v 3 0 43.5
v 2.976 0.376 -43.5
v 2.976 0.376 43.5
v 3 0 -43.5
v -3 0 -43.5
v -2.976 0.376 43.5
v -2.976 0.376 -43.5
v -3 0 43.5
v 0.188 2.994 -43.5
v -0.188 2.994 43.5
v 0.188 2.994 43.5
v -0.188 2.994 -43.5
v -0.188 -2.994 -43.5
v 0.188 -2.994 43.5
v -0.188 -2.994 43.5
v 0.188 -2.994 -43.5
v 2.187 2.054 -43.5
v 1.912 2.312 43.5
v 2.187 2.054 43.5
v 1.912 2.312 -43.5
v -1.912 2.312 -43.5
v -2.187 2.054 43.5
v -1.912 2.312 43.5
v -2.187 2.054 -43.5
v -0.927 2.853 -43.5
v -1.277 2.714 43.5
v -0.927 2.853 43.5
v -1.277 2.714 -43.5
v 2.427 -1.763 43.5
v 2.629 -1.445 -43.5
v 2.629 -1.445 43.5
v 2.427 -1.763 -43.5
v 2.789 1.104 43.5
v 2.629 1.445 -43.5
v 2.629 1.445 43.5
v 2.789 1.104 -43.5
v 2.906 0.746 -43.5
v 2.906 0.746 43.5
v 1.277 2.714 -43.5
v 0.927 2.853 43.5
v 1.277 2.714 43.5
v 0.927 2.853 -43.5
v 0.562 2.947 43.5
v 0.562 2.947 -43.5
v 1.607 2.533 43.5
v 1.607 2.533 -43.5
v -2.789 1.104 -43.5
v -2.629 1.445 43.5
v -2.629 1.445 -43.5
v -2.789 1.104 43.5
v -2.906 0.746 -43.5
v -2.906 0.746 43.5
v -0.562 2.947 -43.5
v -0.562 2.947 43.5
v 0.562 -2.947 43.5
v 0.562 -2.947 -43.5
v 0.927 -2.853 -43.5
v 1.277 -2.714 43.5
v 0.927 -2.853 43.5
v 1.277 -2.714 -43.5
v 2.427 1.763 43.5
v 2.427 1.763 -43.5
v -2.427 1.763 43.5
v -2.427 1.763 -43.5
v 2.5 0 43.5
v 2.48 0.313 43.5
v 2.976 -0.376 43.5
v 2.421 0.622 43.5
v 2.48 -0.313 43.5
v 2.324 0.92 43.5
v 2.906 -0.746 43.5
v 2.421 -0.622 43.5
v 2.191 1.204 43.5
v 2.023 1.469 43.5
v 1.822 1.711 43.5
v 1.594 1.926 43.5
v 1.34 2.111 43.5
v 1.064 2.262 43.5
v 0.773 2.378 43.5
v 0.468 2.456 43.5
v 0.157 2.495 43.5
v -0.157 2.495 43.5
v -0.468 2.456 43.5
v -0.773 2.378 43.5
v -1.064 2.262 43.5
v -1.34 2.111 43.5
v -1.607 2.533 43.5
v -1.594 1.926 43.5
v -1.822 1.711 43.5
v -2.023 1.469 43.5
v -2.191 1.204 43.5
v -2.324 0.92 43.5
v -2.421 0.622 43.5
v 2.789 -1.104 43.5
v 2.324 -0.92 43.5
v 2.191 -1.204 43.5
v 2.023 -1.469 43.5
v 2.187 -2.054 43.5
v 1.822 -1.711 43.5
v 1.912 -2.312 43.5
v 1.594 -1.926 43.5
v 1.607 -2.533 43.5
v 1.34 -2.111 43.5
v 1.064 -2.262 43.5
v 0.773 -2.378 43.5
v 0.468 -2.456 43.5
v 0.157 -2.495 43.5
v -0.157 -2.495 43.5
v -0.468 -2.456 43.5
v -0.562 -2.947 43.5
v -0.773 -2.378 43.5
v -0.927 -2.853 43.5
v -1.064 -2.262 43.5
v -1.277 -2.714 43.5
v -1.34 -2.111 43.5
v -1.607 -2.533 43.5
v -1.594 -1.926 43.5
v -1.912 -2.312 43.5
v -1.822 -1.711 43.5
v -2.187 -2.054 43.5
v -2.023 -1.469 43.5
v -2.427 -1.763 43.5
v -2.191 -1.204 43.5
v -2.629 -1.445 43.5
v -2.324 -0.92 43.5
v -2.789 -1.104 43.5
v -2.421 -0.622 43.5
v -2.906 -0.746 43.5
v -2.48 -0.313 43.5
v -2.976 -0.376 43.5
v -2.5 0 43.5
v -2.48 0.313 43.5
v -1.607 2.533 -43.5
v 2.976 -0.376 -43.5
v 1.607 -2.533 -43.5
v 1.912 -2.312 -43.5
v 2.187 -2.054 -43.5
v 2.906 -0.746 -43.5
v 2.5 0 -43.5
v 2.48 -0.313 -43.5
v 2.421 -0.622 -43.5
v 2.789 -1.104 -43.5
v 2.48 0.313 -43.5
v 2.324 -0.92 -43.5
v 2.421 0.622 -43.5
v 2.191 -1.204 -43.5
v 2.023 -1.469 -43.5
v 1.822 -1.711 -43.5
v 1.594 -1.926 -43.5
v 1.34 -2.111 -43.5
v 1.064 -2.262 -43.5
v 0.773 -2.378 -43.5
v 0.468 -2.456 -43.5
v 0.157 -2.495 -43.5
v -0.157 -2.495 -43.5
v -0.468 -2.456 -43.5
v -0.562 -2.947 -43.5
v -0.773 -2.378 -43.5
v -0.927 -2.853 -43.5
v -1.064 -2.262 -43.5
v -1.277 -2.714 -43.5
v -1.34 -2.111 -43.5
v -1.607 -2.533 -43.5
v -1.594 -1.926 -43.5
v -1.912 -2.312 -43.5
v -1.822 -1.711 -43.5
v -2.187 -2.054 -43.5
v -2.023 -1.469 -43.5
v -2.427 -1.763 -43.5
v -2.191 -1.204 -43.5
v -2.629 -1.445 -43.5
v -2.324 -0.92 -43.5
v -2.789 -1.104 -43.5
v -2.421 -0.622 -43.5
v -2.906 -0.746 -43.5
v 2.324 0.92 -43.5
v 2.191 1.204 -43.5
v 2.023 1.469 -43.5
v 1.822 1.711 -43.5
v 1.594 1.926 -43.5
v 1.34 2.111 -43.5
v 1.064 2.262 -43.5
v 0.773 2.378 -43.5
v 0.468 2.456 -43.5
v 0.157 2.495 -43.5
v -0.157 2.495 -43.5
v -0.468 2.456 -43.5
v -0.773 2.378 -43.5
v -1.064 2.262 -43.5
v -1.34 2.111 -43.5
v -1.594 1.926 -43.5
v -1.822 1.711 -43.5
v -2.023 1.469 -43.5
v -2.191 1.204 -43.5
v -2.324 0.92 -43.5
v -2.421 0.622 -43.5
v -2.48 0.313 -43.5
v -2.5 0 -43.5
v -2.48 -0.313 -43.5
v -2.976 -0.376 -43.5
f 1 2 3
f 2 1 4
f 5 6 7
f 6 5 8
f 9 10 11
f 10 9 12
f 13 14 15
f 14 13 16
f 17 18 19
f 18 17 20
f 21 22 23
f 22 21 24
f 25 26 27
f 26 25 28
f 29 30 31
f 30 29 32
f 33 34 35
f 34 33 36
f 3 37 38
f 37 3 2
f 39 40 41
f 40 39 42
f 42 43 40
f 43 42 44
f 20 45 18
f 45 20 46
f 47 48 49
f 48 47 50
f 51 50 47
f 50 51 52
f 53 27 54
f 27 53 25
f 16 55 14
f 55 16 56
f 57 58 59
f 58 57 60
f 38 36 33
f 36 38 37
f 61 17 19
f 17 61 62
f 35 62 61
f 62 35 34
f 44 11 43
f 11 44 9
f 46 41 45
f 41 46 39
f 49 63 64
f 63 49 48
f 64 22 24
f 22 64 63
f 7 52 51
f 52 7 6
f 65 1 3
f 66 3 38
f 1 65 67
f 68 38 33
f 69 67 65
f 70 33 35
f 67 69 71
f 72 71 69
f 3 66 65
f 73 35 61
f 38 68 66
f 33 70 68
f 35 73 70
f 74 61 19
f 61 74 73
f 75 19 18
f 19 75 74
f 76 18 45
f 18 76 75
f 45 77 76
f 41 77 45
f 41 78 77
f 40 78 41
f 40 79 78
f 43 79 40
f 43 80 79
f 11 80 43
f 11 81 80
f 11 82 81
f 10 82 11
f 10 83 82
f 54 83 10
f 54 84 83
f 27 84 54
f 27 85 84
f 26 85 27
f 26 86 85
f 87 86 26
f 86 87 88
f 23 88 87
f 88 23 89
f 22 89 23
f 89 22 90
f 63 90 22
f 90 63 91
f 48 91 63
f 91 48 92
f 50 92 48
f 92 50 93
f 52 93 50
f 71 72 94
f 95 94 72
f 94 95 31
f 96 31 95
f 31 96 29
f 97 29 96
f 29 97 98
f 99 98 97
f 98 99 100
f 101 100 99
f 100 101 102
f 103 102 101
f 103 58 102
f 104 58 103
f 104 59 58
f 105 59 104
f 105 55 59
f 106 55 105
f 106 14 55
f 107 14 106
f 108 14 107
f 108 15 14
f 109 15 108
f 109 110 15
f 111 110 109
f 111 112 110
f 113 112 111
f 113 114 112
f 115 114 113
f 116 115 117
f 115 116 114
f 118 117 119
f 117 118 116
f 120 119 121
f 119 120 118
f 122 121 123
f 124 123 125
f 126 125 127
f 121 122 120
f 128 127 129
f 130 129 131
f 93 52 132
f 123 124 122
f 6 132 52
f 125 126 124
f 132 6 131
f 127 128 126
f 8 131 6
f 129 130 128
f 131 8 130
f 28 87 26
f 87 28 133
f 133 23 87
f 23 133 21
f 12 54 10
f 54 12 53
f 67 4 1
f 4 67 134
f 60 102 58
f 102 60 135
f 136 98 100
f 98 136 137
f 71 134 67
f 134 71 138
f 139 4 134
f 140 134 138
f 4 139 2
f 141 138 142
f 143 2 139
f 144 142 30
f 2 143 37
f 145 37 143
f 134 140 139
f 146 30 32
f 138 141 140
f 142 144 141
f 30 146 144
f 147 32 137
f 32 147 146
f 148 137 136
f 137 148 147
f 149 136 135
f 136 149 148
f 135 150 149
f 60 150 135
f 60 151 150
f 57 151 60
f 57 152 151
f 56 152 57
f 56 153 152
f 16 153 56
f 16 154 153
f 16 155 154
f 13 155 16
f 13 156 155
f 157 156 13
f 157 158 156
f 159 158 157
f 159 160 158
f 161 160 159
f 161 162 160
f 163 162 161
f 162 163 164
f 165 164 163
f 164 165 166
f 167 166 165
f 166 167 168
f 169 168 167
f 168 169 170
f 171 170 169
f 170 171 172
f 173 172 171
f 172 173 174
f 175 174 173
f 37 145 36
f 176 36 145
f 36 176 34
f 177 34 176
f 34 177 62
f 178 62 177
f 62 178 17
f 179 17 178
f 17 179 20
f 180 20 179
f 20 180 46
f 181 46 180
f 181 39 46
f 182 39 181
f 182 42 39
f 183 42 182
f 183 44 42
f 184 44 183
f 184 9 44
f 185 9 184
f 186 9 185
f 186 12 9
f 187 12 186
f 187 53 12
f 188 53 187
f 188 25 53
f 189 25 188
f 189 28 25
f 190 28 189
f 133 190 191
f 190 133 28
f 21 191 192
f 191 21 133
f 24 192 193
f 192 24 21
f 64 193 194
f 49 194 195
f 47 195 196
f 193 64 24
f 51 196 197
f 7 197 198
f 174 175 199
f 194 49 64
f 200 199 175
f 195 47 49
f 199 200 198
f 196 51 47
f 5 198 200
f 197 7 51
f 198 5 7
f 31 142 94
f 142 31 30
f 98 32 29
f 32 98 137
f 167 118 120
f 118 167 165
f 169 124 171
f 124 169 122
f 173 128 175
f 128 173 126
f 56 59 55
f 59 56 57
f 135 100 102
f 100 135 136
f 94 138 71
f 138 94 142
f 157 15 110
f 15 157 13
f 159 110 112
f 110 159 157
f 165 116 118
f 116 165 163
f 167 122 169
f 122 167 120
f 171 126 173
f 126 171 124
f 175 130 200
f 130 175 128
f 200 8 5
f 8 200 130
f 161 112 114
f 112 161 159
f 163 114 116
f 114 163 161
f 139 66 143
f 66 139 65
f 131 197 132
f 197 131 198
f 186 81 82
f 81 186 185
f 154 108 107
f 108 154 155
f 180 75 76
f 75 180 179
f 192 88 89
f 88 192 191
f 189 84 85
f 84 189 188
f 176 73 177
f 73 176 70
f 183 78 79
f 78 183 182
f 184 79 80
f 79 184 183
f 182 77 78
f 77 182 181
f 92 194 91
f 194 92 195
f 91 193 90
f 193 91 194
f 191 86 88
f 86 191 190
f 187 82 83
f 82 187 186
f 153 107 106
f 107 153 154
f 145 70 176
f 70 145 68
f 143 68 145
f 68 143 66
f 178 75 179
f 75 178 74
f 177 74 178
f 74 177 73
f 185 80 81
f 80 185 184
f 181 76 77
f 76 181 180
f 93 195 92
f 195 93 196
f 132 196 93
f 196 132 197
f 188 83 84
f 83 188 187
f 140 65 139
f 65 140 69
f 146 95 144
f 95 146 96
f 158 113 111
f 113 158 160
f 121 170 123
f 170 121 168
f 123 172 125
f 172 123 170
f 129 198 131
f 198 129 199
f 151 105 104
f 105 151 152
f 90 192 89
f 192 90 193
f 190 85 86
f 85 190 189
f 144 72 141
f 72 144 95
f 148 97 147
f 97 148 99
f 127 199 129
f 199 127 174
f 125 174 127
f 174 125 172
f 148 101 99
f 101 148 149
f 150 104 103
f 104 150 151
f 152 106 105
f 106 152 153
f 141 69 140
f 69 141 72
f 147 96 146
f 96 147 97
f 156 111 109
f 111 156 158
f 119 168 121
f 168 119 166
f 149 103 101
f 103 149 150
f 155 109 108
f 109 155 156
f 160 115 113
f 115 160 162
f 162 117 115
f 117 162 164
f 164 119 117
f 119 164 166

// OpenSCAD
$fn = 50;


difference() {
	union() {
		translate(v = [0, 0, -43.5000000000]) {
			cylinder(h = 87, r = 3.0000000000);
		}
	}
	union() {
		translate(v = [0, 0, -100.0000000000]) {
			cylinder(h = 200, r = 2.5000000000);
		}
	}
}
